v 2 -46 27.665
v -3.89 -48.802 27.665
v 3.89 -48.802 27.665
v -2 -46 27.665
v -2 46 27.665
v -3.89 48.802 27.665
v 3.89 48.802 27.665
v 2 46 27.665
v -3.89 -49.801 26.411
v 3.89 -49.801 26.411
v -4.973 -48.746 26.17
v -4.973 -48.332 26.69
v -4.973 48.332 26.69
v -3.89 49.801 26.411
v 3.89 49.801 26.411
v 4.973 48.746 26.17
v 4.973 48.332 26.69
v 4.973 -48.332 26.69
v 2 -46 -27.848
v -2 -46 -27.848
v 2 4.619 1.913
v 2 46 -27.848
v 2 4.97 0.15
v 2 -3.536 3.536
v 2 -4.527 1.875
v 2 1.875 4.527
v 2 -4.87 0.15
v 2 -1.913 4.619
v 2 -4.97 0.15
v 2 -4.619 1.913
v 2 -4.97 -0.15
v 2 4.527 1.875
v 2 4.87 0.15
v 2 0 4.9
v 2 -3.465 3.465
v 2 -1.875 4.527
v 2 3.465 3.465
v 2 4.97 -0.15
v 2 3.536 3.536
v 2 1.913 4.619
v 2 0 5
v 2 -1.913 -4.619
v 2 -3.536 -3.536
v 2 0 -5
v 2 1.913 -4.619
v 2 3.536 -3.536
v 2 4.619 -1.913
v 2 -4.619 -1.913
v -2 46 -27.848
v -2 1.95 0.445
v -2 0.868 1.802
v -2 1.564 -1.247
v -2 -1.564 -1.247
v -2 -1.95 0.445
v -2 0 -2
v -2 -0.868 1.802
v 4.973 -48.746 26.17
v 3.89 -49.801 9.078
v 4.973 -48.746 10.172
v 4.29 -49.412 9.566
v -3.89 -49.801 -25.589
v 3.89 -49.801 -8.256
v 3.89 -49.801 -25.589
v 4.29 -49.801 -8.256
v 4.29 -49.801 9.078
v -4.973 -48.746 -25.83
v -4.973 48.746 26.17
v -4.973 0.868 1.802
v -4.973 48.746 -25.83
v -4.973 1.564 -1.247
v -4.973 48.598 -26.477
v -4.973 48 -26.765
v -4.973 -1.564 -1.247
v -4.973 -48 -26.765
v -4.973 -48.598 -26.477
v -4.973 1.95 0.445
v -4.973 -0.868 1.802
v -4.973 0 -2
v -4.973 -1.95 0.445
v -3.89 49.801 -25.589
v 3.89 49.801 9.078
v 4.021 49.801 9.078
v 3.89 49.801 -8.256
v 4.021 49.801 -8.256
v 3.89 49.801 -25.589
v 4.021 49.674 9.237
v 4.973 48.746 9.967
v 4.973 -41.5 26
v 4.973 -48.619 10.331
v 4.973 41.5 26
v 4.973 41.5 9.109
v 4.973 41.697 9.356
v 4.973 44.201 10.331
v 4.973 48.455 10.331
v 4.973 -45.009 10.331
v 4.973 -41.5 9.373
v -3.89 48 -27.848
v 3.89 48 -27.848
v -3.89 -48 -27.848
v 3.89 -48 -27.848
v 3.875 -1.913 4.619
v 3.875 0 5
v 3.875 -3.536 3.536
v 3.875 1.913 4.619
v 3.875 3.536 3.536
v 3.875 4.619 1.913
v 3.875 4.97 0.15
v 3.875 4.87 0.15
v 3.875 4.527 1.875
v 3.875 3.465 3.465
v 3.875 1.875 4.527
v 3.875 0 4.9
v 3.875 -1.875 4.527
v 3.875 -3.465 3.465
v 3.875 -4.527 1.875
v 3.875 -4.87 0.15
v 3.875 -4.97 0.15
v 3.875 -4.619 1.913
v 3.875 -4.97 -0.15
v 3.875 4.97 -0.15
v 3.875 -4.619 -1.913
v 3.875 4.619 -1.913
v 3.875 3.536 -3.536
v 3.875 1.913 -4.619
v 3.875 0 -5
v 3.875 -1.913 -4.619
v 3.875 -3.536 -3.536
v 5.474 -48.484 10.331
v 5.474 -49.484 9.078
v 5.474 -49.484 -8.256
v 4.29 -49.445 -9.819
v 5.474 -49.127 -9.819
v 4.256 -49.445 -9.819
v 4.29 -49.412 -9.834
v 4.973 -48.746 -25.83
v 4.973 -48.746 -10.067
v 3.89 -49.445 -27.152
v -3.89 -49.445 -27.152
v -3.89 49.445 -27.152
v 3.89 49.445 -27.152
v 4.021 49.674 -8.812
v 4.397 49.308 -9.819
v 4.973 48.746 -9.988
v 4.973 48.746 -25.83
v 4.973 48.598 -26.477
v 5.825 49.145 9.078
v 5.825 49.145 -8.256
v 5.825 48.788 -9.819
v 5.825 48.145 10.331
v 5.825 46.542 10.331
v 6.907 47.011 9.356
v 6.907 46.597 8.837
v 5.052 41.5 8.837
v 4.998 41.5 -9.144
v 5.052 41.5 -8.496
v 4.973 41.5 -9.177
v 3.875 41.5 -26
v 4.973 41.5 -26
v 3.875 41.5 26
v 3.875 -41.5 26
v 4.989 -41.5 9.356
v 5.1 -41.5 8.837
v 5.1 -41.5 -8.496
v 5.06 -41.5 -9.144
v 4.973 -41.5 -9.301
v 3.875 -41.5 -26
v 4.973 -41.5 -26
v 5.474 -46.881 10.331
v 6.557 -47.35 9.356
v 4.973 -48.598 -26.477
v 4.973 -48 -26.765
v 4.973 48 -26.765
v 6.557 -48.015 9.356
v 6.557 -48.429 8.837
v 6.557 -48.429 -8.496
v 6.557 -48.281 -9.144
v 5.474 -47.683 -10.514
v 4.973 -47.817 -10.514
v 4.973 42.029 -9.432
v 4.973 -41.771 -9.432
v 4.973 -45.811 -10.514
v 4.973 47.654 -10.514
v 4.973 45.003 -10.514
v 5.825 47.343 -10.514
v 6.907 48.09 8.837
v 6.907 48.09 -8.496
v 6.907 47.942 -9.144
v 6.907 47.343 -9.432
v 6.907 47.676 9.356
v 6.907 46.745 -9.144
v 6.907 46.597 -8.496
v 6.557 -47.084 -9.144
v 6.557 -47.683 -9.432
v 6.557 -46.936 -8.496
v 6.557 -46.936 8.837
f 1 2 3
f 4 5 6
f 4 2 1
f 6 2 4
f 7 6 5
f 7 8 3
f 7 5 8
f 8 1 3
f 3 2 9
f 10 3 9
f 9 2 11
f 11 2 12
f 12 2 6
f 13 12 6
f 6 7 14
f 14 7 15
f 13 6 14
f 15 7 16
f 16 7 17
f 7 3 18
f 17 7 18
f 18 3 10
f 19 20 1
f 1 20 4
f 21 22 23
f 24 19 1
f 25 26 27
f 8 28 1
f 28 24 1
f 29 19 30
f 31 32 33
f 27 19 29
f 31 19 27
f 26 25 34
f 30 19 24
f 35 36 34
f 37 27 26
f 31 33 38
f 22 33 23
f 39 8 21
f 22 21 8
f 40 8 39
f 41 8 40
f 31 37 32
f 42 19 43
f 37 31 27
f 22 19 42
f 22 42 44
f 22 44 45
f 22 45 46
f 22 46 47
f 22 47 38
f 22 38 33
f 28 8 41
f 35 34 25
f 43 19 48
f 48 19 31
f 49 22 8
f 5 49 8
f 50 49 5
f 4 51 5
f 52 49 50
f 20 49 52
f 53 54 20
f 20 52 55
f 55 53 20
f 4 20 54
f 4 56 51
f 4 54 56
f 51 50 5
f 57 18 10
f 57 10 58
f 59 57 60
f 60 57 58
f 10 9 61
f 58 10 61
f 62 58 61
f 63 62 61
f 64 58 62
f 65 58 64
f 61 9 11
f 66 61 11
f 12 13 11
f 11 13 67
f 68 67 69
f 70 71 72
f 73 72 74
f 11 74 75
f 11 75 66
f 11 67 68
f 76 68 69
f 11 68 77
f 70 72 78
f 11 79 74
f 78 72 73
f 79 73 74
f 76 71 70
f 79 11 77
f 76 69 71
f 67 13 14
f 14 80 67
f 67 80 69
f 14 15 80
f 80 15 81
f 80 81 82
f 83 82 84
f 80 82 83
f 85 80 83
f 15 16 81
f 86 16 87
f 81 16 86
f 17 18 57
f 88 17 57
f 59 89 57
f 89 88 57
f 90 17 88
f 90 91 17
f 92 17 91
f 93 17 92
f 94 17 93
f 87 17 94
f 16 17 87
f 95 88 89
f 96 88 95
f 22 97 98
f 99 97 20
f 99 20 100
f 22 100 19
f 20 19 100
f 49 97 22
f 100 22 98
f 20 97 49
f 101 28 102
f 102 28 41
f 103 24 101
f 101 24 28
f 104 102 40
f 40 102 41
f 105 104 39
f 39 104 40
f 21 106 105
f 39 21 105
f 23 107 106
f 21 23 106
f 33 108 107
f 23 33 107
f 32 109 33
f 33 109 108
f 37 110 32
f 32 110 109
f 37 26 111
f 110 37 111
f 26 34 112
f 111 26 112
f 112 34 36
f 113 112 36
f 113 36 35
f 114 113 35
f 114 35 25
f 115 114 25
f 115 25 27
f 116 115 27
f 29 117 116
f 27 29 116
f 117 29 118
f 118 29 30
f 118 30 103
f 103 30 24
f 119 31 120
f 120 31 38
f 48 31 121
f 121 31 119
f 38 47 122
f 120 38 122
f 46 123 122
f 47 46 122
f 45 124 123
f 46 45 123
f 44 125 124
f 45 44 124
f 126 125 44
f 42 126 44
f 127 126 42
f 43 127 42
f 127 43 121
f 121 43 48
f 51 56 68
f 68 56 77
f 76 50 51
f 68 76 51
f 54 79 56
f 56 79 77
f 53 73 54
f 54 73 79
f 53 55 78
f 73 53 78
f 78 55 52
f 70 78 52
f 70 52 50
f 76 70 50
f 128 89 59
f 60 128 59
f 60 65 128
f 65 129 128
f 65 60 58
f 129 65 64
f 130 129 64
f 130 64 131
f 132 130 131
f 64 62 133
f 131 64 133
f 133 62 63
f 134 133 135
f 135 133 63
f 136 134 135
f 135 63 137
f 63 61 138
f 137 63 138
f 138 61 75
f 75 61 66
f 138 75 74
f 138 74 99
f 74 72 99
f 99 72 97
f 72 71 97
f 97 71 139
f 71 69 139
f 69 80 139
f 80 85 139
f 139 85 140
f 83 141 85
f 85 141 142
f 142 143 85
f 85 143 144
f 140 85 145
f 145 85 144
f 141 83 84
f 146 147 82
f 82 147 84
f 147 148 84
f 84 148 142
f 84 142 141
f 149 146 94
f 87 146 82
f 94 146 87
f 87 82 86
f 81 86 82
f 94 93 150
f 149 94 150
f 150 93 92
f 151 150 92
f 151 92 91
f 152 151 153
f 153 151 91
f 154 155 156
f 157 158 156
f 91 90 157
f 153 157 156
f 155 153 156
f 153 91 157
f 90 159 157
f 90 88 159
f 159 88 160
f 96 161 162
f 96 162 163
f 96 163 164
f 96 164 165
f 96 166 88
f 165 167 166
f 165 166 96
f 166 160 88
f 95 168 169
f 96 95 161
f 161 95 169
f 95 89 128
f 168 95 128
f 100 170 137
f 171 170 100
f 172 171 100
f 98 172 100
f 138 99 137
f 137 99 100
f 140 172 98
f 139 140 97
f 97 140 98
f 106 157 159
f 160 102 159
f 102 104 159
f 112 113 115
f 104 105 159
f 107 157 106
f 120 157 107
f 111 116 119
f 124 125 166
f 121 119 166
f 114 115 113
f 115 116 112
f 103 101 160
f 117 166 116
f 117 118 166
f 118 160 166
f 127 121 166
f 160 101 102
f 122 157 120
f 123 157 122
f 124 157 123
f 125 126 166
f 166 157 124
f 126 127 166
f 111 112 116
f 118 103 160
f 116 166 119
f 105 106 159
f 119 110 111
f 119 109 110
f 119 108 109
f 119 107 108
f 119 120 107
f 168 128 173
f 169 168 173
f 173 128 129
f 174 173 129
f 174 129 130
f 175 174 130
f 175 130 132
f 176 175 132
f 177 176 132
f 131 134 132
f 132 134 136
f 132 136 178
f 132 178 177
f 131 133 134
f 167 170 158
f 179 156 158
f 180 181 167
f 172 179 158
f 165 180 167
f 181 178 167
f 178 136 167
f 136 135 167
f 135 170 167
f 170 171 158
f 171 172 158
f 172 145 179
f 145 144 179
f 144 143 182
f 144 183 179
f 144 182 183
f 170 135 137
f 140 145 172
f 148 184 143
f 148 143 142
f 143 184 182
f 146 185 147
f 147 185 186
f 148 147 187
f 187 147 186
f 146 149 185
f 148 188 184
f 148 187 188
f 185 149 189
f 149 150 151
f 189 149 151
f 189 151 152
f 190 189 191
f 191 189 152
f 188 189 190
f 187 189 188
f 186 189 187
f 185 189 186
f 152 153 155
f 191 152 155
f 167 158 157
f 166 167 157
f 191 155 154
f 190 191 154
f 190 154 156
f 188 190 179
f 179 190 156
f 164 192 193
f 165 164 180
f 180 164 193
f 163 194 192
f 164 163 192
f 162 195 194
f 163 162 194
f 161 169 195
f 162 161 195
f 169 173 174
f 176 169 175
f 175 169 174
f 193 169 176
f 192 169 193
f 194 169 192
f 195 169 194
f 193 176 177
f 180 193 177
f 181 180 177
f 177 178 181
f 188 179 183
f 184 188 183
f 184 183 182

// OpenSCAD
width = 52;
length = 83.0;
thickness = 1.25;

storageLength = 92.0;
storageThickness = 4;


rotate(a=90, v=[0,1,0]) difference()
{
	minkowski()
	{
		difference()
		{
			union()
			{
			 	cube([width, length+13, 5 + thickness], center=true);
				 translate([0, length/2 + 2, 1]) rotate(a=20, v=[1,0,0]) cube([width/3, 10, 5], center=true);
				 translate([0, -length/2 - 2, 1]) rotate(a=-15, v=[1,0,0]) cube([width/3, 10, 5], center=true);
			}
		 translate([0, (length+13)/2 +5, 1]) cube([width, 10, 10], center=true);
		 translate([0, -(length+13)/2 -5, 1]) cube([width, 10, 10], center=true);
		}
		
		sphere(r=2);
	}
	
	// knock out the space for the sharpener and the mouting holes
	translate([0, 0, 4.5]) cube([width, length, thickness], center=true);
	translate([0, 0, -2]) cylinder (r=2, h = 7, center=true);
	translate([0, 0, 2])  supportedCylinder();

	// Storage Area
	cube([width *2, storageLength, storageThickness], center=true);
}


module supportedCylinder()
{
	difference()
	{
		cylinder (r=5, h = 5, center=true);
		difference()
		{	
			cylinder (r=4.9, h = 5, center=true);
			translate([5, 0, 0])  cube([10, 10, 10], center=true);
		}			
		rotate(a=90, v=[0,1,0]) cube([10, 10, .3], center=true);

	}
}
